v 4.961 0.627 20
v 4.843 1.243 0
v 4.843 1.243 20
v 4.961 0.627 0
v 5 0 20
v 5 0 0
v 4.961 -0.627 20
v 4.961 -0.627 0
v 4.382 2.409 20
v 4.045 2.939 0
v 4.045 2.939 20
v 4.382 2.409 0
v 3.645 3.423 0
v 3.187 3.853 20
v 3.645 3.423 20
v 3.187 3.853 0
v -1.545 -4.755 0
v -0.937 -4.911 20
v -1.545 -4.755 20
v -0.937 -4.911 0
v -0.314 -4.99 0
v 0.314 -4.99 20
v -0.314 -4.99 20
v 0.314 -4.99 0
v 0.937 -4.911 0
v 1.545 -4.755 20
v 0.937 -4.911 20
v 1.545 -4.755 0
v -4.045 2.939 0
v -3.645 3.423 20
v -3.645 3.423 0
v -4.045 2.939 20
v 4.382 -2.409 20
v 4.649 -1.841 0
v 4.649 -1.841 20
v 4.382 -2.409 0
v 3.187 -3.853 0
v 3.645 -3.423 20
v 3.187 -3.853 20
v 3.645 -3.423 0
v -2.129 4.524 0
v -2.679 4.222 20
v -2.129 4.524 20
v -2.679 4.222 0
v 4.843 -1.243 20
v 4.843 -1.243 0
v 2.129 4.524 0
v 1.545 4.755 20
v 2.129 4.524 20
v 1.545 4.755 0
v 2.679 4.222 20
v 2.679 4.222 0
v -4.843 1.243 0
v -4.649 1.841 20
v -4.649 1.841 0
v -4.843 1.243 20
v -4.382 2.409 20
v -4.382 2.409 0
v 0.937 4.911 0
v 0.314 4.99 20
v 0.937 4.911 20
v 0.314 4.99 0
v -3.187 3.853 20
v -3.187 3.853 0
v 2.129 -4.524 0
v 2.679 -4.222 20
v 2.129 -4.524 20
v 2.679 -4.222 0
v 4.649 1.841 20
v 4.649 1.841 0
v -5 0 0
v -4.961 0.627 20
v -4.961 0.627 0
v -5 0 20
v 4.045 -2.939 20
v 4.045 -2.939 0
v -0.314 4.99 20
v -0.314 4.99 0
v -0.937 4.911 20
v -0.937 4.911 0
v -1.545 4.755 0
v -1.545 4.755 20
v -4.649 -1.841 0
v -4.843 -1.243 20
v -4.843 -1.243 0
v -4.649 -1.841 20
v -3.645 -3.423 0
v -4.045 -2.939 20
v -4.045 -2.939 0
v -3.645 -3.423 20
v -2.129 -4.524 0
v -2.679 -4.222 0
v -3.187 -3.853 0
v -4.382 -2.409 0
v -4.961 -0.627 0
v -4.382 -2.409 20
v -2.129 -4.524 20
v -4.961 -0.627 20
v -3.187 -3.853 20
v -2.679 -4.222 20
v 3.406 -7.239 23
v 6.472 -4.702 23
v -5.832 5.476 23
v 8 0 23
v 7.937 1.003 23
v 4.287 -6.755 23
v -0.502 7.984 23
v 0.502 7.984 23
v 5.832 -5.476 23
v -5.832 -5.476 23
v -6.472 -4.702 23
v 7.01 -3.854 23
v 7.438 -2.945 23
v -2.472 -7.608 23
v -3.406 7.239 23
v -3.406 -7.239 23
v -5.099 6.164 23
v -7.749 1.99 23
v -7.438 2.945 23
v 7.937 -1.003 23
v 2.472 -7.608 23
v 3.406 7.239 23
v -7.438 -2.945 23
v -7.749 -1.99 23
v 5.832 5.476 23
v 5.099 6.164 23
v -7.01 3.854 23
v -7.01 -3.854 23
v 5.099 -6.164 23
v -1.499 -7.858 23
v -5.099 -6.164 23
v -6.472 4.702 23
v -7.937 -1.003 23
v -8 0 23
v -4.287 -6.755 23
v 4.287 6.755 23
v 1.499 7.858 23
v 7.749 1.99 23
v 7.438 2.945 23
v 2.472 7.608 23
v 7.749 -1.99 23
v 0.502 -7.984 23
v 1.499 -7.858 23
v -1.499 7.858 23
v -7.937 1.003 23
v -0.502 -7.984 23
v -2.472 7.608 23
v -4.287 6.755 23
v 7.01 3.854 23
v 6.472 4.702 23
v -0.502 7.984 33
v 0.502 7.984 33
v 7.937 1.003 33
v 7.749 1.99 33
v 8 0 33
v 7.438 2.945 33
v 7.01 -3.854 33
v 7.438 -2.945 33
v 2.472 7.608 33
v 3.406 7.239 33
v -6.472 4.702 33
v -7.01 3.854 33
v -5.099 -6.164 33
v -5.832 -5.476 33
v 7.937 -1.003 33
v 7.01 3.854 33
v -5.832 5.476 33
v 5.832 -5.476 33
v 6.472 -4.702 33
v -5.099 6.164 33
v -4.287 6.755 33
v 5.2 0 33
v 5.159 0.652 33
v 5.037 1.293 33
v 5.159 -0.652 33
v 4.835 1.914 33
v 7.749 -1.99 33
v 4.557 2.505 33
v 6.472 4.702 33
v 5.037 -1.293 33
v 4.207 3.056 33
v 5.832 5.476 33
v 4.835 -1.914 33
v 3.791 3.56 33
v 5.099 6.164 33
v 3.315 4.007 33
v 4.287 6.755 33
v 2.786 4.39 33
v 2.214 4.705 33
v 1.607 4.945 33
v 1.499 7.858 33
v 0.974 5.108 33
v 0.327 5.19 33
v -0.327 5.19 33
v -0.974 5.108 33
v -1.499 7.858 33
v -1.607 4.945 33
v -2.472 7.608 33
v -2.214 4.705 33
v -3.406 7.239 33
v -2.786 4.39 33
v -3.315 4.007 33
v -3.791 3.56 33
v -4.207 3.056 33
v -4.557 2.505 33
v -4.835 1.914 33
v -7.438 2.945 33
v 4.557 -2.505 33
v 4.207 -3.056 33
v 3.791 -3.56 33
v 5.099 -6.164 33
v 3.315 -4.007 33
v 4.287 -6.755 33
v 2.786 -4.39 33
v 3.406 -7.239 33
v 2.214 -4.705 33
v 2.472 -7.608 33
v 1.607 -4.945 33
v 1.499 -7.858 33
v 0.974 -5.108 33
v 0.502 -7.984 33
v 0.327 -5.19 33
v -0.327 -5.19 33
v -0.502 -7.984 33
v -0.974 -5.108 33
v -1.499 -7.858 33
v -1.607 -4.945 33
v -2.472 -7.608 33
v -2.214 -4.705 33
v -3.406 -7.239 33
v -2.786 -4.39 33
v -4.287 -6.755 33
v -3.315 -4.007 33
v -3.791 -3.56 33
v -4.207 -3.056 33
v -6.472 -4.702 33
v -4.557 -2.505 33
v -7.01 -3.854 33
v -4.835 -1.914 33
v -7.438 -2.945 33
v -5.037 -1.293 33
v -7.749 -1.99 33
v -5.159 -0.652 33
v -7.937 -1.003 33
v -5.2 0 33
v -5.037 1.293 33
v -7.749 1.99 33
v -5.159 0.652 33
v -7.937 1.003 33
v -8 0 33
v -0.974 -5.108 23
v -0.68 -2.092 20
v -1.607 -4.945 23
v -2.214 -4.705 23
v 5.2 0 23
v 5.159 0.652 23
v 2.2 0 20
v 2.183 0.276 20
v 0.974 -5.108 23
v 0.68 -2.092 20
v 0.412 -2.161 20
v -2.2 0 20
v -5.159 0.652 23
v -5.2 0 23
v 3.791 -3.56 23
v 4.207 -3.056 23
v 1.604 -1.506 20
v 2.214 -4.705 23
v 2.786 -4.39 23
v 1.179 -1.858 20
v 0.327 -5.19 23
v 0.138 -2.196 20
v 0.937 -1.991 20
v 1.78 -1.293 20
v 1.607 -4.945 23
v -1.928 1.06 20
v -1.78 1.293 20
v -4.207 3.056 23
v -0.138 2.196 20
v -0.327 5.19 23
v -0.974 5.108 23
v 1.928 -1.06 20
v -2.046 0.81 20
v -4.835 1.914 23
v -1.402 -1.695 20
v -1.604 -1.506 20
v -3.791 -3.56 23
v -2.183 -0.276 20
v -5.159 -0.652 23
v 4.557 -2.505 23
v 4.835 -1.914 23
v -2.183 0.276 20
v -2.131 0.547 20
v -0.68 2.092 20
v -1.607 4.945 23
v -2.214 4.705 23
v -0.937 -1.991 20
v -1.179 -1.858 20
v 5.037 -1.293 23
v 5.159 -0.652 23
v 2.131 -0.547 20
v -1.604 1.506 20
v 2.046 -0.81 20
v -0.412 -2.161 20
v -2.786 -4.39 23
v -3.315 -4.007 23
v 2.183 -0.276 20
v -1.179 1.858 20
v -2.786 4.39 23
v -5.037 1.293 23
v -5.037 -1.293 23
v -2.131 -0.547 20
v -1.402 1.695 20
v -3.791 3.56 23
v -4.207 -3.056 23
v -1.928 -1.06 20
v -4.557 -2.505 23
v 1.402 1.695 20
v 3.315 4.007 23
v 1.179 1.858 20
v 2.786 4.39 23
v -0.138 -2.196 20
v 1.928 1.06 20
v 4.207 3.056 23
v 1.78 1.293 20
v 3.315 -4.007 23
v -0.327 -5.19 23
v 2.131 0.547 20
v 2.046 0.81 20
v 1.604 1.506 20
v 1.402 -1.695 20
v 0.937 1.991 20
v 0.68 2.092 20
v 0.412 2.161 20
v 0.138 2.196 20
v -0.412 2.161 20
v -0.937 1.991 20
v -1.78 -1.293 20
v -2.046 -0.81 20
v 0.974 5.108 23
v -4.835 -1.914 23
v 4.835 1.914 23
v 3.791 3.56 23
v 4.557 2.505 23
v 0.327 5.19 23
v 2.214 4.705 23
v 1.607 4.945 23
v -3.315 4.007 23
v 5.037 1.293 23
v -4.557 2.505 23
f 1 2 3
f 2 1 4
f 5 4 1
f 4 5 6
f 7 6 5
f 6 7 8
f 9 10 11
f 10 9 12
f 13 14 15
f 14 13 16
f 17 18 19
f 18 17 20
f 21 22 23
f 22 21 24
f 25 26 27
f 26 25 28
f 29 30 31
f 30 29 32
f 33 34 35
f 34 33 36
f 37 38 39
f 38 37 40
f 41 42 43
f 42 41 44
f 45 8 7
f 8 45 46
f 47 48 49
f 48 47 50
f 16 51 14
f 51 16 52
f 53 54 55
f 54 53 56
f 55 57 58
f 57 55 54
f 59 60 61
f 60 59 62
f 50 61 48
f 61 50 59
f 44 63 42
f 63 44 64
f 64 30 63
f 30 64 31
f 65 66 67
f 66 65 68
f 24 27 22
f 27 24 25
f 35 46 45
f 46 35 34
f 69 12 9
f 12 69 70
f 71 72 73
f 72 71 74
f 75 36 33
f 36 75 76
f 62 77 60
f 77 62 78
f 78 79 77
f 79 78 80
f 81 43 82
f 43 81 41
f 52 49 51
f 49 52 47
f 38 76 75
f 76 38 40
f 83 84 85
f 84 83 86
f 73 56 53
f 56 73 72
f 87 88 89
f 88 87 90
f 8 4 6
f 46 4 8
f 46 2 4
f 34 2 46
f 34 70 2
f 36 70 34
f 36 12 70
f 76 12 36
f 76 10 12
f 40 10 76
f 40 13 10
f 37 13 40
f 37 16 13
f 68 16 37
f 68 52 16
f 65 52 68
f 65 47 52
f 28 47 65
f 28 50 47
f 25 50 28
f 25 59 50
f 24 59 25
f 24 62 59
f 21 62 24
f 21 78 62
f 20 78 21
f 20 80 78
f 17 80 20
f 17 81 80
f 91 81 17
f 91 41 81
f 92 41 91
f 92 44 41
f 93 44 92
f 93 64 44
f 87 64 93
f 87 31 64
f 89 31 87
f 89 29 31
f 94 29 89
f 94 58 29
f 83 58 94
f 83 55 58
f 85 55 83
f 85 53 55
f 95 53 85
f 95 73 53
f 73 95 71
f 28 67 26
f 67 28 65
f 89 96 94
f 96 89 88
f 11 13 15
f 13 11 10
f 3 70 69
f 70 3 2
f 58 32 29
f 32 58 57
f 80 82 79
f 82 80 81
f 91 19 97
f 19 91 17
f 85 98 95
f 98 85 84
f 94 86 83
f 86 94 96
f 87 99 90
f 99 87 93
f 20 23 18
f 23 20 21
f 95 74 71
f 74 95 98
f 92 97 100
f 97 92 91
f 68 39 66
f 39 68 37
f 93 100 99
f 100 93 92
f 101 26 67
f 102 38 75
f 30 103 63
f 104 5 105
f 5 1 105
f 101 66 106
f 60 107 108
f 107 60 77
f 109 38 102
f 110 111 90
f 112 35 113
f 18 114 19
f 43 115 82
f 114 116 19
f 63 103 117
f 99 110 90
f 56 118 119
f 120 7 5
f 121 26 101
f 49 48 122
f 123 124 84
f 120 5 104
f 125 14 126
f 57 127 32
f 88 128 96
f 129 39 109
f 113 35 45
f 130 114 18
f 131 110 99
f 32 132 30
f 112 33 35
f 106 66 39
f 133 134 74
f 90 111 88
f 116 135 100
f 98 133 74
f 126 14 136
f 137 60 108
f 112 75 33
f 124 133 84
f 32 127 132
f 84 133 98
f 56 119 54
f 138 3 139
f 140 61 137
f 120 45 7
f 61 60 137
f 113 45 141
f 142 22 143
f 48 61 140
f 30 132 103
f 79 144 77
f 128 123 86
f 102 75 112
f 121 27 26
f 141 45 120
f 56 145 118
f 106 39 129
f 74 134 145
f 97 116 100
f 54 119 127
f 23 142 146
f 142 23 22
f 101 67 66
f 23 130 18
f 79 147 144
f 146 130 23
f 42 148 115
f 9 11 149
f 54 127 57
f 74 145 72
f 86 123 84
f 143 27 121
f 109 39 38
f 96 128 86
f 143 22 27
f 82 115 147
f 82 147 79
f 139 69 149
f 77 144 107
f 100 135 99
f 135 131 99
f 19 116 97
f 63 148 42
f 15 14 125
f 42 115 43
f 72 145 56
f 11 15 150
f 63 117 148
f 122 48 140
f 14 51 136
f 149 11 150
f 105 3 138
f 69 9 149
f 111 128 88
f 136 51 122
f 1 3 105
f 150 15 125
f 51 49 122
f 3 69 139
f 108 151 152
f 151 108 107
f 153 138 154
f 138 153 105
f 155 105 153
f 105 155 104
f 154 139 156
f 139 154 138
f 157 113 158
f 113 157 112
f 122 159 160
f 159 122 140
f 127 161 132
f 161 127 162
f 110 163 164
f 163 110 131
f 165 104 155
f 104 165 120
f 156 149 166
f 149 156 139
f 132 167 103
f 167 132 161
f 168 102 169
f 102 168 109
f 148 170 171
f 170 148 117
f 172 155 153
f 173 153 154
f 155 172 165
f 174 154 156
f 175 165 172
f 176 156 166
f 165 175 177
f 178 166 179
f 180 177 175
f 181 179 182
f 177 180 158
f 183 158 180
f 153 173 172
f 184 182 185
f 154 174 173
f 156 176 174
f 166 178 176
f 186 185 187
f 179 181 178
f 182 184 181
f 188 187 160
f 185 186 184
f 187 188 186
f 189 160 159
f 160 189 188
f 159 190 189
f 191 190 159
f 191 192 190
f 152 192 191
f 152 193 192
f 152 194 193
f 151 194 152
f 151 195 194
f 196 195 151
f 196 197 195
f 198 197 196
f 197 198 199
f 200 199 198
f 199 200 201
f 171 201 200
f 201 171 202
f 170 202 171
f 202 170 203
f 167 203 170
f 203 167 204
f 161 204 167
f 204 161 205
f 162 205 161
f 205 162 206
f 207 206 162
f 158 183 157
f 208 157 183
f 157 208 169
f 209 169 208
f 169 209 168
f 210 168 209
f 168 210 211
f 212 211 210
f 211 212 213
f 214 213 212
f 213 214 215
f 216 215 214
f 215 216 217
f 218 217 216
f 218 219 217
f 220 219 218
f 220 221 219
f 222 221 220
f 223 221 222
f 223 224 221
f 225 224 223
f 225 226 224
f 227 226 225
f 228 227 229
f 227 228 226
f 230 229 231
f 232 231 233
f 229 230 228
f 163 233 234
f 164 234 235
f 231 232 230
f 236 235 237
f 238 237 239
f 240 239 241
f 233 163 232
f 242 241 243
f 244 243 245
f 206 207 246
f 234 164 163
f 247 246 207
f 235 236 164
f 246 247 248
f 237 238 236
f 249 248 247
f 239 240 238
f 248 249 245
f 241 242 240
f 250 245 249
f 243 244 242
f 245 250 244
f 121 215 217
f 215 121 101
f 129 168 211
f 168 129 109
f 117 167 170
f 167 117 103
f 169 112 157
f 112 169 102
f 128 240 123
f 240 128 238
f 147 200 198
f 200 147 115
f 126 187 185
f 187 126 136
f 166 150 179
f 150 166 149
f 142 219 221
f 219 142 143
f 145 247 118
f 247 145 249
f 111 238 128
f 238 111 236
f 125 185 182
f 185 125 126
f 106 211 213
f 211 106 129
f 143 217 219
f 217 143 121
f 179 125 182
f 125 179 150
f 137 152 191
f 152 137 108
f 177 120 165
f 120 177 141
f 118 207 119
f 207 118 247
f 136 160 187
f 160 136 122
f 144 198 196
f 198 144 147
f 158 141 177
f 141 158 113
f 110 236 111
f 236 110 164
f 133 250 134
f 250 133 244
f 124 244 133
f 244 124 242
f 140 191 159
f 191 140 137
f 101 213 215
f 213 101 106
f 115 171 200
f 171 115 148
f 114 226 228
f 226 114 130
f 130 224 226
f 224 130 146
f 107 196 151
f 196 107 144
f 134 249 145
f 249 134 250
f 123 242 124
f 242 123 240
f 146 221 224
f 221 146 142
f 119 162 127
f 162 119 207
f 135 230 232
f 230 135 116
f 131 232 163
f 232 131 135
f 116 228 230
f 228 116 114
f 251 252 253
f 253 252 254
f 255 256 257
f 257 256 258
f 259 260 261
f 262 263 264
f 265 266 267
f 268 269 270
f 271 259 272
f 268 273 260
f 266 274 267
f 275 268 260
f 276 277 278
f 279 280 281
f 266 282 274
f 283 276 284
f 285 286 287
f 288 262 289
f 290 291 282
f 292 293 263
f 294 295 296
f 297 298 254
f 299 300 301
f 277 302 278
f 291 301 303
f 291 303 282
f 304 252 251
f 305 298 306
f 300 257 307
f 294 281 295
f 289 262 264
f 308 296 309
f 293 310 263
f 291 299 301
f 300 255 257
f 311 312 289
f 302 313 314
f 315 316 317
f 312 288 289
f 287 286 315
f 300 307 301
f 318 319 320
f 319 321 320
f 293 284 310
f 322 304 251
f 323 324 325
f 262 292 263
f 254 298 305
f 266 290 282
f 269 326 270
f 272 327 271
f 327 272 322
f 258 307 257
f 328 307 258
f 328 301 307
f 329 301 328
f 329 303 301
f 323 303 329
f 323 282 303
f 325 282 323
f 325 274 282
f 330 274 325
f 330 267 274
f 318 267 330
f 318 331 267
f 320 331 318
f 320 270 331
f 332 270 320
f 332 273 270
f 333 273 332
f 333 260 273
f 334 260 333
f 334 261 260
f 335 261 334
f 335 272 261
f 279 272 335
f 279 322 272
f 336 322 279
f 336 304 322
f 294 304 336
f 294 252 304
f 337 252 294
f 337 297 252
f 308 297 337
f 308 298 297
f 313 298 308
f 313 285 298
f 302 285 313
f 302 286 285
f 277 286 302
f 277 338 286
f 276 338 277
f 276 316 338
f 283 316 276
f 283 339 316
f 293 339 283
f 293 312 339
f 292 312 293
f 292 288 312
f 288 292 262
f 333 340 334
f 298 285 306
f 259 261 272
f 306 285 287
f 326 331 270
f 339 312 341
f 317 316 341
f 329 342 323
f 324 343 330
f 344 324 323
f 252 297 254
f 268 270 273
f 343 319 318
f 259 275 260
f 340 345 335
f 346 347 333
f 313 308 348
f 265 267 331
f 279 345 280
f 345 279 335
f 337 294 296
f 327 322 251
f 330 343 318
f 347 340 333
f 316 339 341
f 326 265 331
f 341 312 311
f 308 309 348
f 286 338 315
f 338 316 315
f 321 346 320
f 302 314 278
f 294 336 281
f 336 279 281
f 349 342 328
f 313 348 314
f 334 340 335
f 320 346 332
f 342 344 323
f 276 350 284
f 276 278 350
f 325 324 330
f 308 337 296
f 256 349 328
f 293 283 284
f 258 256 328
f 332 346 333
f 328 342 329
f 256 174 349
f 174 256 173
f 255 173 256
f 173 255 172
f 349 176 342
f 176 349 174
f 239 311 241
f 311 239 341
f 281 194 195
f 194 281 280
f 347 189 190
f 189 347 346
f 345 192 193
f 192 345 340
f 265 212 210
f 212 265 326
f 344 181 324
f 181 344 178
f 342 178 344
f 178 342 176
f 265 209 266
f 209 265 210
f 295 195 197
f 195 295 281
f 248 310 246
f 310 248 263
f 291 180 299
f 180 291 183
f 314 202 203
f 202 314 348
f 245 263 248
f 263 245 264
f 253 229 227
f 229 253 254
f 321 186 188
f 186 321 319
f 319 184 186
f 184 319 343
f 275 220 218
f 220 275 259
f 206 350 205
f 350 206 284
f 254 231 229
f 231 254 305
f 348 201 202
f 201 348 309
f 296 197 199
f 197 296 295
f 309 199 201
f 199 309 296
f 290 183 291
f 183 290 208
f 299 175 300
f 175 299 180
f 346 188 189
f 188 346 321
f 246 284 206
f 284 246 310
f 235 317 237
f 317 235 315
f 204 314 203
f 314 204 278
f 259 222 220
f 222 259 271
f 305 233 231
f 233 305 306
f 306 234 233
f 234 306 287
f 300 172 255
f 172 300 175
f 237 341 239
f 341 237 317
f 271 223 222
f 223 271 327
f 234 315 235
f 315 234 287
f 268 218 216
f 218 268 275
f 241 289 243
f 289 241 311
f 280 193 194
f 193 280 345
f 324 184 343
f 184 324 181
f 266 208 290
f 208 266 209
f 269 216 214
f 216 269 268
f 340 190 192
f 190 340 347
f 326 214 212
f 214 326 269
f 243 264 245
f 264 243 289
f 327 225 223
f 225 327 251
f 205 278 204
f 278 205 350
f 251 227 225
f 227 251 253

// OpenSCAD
$fn=50;

module target(){

	cylinder(h=20, r=5);

	translate([0, 0, 20]){

		cylinder(h=3, r1=5, r2=8);

	}

	translate([0, 0, 23]){

		cylinder(h=10, r=8);

	}

}

module tool(){

	translate([0, 0, 20]){

		cylinder(h=3, r1=5.2-3, r2=8.2-3);

	}

	translate([0, 0, 23]){

		cylinder(h=10, r=5.2);

	}

}
difference(){

	target();

	tool();

}
